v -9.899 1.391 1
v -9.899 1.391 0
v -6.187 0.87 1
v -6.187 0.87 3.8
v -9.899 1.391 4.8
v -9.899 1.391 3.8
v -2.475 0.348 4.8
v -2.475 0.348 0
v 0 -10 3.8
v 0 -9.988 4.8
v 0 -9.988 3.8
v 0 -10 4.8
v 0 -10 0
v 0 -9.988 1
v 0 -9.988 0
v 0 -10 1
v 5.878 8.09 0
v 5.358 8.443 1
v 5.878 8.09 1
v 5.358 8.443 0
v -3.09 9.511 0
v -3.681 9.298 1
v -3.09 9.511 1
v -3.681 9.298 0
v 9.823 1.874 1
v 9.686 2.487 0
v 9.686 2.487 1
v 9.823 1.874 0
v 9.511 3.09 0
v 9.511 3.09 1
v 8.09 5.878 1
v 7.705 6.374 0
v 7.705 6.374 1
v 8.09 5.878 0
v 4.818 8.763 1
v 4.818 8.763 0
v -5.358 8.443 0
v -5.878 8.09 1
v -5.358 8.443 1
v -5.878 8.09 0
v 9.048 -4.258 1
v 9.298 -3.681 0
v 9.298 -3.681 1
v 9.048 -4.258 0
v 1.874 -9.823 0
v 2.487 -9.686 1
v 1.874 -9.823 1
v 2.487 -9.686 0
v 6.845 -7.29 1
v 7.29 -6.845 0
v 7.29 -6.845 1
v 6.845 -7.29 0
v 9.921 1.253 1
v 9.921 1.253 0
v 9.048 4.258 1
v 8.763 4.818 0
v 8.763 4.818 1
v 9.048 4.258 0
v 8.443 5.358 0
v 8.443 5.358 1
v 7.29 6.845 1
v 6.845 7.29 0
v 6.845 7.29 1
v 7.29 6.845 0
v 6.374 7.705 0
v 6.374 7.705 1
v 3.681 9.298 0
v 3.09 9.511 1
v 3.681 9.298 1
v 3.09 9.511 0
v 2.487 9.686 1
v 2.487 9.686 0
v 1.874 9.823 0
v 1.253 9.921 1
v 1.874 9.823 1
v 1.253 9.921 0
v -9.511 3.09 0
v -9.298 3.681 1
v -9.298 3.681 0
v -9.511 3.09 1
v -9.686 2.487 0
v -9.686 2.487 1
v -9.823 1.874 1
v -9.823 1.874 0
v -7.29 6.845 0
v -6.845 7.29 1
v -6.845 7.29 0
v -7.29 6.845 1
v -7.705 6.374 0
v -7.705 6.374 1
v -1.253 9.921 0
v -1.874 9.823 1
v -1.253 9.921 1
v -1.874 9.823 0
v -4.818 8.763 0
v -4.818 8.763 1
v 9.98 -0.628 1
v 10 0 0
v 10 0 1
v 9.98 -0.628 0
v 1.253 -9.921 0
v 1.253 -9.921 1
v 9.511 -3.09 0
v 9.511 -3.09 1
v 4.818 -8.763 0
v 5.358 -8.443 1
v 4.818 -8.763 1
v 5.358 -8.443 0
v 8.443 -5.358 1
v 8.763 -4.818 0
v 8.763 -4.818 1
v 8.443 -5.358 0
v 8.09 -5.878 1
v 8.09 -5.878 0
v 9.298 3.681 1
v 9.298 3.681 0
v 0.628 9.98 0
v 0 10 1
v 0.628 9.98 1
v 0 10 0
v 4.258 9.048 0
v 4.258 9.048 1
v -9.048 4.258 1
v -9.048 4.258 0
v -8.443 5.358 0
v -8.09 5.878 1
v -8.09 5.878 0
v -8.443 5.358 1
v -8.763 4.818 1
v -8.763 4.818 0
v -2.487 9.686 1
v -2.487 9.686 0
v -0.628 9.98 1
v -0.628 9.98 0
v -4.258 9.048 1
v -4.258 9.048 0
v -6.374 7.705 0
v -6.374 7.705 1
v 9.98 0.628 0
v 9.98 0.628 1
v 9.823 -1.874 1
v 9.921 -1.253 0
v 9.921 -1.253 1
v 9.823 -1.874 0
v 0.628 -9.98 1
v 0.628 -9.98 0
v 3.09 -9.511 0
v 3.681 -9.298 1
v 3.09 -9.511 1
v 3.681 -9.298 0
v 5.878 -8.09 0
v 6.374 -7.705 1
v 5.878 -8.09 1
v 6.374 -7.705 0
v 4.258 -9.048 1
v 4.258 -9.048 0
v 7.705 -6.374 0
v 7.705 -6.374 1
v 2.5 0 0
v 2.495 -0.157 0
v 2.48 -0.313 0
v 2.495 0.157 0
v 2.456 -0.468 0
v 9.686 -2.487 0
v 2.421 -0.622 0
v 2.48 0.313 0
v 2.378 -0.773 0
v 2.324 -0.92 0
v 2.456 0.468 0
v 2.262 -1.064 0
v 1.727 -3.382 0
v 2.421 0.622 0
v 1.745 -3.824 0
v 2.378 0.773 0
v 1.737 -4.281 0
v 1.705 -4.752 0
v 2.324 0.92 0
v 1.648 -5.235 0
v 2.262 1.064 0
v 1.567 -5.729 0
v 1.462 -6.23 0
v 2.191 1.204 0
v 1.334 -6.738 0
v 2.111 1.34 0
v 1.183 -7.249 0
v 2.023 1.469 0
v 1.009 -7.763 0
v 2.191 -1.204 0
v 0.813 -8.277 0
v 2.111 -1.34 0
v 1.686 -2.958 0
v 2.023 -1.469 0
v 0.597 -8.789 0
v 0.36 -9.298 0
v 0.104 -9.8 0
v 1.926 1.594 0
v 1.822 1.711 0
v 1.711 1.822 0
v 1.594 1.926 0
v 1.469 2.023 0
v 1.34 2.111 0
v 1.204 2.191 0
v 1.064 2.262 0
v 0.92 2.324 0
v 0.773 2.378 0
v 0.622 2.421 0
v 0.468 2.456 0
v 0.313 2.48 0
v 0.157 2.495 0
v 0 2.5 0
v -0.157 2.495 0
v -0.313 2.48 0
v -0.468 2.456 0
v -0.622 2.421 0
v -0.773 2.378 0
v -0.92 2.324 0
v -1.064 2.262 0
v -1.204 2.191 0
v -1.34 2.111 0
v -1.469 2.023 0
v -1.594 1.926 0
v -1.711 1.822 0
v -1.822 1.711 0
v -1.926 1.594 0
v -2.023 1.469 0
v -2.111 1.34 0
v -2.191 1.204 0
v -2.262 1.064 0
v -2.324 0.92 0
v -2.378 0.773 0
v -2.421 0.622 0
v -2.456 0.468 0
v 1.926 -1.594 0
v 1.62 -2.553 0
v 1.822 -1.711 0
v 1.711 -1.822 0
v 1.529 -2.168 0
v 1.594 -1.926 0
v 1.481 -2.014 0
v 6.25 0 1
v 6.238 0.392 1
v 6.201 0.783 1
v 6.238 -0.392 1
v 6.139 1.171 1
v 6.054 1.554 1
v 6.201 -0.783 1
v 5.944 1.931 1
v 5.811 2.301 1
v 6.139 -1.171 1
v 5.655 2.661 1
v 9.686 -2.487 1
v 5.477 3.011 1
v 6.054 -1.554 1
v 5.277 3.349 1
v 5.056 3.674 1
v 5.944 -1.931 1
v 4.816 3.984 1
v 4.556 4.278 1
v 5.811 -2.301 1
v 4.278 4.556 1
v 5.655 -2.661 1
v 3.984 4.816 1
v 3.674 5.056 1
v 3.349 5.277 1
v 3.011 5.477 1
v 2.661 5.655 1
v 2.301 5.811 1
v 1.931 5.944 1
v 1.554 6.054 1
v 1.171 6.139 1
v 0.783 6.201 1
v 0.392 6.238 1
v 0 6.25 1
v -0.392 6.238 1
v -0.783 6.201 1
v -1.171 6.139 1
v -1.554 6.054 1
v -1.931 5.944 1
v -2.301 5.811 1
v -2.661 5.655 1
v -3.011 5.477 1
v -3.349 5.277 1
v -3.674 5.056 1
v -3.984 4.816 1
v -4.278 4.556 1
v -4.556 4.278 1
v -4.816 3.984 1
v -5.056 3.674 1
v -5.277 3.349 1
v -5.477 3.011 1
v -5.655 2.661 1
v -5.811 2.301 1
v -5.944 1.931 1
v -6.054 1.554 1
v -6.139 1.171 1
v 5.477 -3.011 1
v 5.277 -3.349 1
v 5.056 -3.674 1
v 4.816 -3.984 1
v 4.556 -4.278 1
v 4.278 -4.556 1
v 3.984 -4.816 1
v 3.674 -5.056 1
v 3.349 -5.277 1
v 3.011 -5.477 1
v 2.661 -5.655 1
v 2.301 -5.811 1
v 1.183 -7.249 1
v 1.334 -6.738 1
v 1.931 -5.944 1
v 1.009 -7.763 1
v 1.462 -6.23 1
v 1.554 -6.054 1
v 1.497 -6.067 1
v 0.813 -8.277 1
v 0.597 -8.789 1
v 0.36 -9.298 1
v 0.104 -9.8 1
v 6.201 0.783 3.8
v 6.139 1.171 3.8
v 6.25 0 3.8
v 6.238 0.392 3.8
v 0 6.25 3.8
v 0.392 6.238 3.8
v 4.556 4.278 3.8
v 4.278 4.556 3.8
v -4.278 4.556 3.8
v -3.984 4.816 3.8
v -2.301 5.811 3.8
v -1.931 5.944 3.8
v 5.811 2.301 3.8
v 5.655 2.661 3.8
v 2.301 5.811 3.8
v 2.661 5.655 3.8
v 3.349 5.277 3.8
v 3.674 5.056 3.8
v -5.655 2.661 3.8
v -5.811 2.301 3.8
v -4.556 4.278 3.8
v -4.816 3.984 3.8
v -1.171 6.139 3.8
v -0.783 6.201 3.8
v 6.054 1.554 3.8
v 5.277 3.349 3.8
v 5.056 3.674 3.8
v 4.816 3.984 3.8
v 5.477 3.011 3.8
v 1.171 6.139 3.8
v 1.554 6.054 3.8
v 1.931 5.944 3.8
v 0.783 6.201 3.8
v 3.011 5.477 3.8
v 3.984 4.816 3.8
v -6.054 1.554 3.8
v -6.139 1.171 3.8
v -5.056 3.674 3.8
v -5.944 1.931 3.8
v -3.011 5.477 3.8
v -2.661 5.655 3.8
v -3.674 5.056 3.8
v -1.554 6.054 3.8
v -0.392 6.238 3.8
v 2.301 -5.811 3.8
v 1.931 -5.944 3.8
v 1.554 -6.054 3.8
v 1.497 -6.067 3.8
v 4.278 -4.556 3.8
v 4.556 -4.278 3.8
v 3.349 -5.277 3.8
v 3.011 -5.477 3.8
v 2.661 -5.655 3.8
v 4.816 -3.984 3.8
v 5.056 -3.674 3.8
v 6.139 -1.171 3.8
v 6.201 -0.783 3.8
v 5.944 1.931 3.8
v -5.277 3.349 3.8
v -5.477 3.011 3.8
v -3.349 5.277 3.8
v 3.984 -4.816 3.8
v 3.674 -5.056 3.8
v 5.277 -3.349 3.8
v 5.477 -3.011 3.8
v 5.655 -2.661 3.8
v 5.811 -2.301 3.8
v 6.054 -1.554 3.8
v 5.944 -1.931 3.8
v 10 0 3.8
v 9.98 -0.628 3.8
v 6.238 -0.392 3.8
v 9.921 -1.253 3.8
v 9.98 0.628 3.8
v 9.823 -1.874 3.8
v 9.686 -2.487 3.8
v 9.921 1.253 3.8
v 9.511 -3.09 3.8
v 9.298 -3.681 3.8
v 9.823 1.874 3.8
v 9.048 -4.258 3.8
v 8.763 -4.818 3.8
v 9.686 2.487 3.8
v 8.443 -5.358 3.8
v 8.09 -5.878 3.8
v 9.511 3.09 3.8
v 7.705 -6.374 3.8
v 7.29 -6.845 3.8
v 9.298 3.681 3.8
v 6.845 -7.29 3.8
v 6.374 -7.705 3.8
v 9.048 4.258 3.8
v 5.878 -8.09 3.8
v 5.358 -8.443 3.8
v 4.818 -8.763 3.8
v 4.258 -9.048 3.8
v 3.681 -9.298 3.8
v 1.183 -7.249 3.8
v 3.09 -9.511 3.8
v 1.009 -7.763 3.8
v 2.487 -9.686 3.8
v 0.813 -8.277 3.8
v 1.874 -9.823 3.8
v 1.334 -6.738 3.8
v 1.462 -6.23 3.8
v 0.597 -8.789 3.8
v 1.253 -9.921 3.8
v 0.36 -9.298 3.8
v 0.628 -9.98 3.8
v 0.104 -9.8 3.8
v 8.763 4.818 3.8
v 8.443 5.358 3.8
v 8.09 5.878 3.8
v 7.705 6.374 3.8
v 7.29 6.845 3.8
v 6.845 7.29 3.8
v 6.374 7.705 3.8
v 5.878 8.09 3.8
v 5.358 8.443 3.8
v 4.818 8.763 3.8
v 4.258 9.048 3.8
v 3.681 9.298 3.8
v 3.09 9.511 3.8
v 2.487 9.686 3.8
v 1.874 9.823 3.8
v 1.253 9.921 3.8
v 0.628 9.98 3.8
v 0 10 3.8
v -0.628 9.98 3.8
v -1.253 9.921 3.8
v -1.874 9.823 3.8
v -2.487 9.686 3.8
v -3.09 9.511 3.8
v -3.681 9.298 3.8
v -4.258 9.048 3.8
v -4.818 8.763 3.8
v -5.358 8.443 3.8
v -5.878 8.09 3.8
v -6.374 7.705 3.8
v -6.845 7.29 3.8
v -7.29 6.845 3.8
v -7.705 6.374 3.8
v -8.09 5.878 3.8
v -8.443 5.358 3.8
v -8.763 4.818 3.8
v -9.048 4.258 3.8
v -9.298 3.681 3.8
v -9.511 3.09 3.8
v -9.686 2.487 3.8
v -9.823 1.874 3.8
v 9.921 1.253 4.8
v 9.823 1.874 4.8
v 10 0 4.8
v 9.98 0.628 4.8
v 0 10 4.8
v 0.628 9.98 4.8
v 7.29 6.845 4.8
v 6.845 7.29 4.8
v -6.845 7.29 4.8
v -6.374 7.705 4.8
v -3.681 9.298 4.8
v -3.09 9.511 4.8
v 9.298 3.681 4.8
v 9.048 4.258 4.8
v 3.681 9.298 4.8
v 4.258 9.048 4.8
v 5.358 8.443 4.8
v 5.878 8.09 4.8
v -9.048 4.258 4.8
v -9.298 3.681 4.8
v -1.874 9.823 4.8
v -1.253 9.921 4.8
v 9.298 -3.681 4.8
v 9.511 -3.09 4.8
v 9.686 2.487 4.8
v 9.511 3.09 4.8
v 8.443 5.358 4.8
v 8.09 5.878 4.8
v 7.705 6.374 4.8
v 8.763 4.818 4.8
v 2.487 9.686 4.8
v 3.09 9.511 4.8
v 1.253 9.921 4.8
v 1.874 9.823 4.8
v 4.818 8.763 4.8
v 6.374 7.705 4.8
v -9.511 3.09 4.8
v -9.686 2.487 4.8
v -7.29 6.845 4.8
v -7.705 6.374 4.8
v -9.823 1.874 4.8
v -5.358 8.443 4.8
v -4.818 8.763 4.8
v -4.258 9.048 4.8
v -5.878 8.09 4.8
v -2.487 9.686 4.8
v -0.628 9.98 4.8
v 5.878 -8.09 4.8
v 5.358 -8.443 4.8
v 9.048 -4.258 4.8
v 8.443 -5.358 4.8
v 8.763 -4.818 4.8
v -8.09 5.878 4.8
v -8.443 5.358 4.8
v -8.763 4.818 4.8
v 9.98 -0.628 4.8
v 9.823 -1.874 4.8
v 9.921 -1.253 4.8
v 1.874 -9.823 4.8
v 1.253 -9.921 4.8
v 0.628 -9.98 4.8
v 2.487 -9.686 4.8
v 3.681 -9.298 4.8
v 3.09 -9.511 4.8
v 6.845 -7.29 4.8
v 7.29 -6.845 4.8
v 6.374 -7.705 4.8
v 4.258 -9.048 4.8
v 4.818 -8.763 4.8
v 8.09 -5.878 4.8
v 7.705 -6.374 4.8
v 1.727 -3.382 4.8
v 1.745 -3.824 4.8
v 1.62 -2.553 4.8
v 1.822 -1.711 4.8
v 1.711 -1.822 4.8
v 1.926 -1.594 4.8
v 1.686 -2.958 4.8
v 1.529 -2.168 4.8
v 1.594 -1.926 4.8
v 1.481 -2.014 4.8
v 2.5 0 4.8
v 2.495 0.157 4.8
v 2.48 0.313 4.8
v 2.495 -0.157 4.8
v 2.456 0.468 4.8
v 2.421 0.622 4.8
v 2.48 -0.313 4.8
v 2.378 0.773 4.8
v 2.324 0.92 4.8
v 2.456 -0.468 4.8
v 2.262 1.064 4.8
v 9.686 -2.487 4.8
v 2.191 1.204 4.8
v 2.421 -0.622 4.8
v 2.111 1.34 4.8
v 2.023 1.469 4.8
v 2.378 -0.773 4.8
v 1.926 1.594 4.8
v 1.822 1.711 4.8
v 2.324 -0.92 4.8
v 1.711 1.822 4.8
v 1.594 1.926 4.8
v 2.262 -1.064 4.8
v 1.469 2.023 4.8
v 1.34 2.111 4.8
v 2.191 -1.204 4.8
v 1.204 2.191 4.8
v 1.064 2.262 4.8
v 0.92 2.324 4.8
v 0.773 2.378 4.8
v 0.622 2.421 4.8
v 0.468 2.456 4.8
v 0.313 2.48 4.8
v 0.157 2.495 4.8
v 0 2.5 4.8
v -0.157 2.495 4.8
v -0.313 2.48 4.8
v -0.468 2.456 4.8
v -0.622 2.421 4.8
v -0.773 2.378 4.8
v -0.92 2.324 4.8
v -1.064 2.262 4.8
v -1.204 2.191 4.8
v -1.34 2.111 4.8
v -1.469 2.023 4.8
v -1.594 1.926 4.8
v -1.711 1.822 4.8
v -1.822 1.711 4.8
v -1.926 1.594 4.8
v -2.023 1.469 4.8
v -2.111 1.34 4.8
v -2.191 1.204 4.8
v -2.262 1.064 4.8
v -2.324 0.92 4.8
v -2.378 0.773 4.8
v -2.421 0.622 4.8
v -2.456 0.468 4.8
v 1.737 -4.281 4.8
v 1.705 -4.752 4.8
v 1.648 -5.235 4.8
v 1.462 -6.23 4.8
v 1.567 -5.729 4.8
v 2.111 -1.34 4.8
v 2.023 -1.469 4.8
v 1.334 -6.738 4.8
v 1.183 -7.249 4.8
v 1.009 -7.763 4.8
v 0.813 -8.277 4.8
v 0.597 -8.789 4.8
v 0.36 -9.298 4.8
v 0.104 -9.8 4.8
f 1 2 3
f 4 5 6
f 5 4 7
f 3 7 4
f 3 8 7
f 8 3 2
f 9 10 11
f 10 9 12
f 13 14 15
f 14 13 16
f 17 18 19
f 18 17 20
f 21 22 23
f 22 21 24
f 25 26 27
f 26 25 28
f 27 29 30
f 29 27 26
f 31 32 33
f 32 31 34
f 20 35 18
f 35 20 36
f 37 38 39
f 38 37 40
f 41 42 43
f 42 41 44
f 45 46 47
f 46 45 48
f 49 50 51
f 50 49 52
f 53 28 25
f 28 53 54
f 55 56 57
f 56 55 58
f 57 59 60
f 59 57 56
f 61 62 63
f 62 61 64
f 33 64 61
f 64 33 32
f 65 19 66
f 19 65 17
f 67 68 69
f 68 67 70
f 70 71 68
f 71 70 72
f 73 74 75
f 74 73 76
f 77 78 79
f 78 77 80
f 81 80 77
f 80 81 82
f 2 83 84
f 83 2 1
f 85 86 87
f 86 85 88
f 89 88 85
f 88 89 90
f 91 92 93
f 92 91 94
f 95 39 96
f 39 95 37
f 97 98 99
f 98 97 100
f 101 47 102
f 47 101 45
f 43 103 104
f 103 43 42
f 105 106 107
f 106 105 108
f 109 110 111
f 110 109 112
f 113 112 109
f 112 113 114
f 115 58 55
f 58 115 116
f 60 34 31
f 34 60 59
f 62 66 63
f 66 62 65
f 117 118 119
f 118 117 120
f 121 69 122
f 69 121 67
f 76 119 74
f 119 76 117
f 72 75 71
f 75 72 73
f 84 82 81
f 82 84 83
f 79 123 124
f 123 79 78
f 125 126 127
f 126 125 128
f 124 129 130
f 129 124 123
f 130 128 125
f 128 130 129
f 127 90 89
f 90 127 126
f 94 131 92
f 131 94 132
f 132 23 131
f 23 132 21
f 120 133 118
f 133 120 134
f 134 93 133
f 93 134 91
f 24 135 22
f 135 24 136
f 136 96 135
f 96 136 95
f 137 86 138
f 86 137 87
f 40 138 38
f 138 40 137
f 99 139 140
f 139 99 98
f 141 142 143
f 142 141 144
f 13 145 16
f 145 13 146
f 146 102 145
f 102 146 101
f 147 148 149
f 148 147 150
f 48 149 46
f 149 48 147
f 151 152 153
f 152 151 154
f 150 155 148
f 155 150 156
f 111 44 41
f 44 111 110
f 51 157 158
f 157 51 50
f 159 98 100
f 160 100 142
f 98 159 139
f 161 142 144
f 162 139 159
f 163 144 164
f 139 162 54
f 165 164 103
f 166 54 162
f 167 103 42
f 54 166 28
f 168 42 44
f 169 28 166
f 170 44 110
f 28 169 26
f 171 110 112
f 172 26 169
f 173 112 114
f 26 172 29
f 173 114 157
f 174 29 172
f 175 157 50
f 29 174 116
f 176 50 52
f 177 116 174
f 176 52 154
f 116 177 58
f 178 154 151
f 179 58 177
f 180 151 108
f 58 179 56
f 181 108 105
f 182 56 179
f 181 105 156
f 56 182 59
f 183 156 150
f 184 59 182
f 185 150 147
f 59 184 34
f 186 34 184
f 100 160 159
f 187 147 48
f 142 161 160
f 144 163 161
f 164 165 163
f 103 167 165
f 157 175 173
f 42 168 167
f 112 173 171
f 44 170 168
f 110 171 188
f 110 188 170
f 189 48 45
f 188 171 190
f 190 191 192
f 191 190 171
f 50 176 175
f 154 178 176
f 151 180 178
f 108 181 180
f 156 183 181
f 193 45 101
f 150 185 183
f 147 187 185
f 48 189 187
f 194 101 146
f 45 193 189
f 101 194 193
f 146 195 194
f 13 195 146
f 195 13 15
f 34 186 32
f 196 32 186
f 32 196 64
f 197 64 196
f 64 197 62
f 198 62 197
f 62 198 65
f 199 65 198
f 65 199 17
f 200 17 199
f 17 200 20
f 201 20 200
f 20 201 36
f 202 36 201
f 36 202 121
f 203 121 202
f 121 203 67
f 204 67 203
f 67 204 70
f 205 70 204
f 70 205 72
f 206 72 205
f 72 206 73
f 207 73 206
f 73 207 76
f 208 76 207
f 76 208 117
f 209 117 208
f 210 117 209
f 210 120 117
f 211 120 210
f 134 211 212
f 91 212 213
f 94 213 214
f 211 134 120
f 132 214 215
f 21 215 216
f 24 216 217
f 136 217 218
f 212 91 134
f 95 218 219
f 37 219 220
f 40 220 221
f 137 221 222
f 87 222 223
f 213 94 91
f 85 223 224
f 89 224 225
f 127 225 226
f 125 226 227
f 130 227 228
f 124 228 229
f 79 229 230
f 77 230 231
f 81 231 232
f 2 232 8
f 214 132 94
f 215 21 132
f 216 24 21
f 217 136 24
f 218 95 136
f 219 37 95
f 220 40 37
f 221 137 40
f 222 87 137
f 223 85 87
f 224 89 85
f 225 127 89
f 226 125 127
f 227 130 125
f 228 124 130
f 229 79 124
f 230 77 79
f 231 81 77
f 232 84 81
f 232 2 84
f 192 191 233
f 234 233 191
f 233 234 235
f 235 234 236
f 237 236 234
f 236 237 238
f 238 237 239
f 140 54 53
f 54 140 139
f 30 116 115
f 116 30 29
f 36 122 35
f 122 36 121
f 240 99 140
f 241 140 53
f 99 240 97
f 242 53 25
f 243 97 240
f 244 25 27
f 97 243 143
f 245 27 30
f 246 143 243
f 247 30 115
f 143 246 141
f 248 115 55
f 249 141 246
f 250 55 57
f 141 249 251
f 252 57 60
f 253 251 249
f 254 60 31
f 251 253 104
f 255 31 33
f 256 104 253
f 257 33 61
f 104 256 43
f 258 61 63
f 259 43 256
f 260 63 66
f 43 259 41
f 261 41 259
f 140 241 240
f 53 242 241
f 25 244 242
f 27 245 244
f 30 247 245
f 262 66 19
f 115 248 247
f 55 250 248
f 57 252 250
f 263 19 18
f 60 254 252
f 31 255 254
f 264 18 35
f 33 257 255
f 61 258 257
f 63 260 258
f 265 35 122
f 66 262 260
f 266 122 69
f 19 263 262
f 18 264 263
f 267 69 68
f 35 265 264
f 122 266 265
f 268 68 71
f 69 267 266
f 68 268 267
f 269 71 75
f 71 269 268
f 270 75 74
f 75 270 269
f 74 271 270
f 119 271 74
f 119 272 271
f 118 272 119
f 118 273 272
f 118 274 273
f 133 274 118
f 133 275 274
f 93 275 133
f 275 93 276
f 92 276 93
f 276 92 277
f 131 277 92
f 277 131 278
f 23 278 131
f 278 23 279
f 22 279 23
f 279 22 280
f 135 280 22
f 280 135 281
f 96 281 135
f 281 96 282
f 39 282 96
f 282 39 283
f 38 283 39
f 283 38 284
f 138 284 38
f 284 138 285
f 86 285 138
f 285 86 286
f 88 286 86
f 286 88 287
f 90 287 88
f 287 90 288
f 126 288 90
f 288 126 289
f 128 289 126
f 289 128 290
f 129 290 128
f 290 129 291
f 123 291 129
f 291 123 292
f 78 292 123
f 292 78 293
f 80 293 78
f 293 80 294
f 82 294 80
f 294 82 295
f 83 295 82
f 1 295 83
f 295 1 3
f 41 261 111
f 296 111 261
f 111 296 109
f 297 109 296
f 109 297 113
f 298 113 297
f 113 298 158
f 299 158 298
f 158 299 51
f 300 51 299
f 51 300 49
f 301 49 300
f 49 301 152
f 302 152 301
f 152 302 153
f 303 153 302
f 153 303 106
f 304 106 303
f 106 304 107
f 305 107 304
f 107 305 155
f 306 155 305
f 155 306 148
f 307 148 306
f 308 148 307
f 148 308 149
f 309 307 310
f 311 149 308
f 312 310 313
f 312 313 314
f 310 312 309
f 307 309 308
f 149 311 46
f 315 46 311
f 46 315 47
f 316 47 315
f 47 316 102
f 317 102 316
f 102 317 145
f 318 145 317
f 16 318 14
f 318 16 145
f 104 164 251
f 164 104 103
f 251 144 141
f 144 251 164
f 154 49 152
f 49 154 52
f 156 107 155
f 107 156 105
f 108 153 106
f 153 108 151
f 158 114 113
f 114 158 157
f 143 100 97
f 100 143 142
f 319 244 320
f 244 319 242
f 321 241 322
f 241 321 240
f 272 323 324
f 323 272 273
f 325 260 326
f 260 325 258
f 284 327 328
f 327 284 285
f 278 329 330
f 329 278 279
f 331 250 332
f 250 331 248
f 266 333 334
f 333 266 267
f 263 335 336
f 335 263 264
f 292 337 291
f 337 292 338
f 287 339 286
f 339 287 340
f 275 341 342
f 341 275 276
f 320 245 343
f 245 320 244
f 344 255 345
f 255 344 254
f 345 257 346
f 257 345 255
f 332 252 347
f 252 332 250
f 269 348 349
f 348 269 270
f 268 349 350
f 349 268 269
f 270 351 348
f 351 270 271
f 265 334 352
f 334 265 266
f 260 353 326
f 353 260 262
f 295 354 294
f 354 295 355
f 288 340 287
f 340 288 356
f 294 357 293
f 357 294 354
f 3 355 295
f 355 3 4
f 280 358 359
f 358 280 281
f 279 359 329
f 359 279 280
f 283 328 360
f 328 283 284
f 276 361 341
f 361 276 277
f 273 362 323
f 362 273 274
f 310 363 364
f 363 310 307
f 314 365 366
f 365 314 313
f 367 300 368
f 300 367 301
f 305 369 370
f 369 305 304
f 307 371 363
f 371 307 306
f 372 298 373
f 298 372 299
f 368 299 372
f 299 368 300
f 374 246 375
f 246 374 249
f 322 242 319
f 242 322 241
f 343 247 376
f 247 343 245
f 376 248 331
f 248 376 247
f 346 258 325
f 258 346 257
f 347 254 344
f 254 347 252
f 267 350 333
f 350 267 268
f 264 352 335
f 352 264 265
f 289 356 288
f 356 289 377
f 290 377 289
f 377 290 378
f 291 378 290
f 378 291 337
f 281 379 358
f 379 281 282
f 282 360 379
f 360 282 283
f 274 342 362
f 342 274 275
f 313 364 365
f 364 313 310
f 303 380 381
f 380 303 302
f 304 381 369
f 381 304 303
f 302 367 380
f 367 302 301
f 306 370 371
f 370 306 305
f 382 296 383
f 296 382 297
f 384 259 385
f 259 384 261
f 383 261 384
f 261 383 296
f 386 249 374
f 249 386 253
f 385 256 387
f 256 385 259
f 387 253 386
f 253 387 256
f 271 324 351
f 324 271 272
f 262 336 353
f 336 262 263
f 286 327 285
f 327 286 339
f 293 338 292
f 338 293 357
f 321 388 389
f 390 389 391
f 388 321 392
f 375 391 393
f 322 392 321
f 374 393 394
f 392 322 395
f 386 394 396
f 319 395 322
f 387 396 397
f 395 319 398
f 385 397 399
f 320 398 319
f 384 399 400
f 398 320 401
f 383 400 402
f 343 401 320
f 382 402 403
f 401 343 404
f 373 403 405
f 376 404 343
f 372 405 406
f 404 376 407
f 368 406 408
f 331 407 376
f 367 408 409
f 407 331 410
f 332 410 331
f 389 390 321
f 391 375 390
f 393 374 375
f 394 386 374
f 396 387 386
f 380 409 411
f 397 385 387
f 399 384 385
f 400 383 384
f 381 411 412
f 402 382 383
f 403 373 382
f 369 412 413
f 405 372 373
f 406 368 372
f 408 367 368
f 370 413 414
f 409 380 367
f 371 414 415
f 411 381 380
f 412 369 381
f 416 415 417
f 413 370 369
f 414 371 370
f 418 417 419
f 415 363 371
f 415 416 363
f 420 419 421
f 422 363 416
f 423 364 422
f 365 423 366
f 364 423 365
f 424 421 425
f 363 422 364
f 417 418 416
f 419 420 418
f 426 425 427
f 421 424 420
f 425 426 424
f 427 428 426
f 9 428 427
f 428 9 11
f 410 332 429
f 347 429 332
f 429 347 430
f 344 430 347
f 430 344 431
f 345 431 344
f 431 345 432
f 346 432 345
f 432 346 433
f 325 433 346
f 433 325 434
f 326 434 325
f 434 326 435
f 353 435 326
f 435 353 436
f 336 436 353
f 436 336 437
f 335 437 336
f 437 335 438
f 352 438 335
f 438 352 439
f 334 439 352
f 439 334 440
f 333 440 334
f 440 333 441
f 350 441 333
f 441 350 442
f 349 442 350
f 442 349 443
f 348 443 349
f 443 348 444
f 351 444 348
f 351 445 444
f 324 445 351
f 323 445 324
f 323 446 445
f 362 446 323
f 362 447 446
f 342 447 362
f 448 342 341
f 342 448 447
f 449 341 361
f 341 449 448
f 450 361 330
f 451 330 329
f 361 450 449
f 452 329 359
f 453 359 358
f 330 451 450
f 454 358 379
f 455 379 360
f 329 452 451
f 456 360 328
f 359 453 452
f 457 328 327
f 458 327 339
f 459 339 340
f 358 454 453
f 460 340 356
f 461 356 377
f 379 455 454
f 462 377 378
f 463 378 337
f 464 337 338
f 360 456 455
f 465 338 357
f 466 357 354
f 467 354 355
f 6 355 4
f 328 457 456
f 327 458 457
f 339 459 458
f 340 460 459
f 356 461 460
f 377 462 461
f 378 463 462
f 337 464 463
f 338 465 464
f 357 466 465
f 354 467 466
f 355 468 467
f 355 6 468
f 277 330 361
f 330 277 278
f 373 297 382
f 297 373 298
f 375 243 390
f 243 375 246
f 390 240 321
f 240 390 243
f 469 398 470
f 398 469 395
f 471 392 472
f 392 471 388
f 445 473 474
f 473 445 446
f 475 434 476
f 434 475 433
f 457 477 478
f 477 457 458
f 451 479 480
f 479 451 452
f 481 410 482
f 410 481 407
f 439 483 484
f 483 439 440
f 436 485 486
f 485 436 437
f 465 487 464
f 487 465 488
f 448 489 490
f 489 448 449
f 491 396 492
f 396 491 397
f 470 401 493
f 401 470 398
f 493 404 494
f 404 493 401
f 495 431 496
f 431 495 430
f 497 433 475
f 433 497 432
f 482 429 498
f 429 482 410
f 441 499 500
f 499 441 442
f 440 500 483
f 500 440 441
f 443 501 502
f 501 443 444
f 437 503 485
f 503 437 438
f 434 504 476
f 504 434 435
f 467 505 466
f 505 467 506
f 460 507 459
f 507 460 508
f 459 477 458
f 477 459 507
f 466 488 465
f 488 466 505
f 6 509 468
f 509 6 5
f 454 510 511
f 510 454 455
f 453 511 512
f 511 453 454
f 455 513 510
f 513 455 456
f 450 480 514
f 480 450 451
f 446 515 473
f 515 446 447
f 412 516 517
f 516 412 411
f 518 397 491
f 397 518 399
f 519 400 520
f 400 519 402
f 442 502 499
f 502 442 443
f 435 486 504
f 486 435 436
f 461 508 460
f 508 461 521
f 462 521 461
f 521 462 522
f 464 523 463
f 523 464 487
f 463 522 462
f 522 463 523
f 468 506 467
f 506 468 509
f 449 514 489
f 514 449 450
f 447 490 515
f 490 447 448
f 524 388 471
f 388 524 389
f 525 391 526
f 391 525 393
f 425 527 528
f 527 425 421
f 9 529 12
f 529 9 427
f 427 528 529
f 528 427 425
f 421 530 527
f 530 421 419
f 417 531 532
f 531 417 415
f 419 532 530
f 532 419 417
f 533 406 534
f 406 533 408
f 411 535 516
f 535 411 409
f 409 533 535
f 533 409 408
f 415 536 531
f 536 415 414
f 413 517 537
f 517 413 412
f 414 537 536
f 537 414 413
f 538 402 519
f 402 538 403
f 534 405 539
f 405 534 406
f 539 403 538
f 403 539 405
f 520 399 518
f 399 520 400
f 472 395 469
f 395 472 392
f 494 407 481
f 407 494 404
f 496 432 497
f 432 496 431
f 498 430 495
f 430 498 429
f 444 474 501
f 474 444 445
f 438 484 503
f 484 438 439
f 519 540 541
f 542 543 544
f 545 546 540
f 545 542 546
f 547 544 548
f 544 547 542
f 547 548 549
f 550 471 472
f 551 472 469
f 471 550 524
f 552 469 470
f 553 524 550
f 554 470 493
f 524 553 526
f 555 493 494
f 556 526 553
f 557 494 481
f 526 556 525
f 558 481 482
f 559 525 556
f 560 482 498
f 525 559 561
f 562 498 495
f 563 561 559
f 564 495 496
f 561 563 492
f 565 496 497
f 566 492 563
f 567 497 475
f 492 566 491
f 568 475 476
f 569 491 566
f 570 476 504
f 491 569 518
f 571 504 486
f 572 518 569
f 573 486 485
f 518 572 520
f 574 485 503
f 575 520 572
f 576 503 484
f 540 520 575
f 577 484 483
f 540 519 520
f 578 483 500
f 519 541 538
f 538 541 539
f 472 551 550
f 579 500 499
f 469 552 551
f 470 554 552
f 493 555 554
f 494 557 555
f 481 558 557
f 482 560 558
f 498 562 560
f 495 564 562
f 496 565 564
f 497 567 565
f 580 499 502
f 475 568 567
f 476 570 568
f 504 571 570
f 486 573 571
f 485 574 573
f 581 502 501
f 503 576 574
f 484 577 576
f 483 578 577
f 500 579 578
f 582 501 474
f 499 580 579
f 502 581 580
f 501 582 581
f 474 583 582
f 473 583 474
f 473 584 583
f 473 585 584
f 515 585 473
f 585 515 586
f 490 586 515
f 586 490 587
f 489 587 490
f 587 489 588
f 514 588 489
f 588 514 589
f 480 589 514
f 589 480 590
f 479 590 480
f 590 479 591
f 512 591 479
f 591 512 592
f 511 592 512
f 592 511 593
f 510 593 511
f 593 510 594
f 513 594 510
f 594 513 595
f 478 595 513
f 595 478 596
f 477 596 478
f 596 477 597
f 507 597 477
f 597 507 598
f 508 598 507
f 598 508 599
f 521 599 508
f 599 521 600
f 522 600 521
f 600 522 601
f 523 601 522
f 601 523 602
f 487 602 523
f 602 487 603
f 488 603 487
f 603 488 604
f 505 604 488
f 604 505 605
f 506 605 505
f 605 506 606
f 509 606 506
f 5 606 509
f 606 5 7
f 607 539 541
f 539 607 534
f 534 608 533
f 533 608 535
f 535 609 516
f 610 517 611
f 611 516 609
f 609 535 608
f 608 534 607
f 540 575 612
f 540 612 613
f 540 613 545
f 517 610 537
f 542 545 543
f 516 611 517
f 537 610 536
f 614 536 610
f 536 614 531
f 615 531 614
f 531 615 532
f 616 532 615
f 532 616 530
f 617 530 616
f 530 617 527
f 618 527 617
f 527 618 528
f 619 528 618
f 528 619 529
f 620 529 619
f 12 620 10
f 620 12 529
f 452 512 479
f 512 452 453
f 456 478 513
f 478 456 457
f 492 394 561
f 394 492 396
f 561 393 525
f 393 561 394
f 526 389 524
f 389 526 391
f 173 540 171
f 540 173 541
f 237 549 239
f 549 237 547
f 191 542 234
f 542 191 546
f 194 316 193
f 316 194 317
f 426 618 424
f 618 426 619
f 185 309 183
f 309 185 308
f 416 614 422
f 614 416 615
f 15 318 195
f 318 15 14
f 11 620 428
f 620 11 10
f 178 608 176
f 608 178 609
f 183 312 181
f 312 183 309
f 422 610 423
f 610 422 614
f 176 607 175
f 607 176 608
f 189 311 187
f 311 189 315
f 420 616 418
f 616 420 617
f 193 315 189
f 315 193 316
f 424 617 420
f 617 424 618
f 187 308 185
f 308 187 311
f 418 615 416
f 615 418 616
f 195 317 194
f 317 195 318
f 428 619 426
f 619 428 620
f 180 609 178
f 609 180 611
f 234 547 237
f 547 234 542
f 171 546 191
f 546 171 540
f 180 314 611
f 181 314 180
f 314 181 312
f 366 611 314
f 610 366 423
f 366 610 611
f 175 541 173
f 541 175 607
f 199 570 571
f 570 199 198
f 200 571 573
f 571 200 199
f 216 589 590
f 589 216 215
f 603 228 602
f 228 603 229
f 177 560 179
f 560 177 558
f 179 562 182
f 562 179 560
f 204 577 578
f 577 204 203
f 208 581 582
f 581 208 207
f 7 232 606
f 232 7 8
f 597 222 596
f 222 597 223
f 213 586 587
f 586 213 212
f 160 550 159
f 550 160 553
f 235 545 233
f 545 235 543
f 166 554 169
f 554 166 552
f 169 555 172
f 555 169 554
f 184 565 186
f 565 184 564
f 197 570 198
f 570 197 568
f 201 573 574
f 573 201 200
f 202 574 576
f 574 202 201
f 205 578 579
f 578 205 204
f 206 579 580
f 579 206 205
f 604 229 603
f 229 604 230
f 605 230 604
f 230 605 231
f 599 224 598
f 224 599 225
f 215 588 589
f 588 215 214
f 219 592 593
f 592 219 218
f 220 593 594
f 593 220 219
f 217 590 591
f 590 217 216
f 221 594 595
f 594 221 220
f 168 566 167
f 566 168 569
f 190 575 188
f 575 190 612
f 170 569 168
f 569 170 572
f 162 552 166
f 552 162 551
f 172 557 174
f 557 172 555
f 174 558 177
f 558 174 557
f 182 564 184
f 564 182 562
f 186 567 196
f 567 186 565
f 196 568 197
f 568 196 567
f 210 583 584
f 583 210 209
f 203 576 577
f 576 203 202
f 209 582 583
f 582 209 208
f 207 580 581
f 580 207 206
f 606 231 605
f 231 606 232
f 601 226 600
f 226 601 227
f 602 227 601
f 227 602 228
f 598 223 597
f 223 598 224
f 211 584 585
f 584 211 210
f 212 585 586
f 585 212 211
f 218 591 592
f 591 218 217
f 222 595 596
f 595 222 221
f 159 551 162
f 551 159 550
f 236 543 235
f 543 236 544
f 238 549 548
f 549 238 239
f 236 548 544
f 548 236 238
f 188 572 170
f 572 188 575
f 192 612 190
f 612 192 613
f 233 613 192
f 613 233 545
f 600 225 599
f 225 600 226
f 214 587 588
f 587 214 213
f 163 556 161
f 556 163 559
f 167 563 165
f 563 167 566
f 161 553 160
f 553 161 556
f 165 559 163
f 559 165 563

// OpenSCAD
// Elevevator Support for RM F104
/* This makes a 3D model for a support for the elevator on the tail.
 * The parameters are given below in mm.
 * The construction method is:
 * 1. make a circular plate,
 * 2. put a circular insert on top of it
 * 3. put another circular plate on top of that.
 * 4. then from all that subtract:
 *    4a. a rod of correct diameter, correctly positioned,
 *    4b. 2 cubes that have been rotated to the proper angles and postioned correctly.
 * 5. the end result is produced by the call to 'support();'
 */

// all dimensions are millimeters
rodDia = 5.0;  // diameter of rod to be glued to support
foamThickness = 4.8;  // foam thickness so as to make it flush
plateThickness = 1.0;  // support plates sandwich walls
plateDia = 20.0;   // diameter of plate
insertThickness = foamThickness - 2.0*plateThickness;  // width of the inner piece
insertDia = (plateDia + rodDia)/2.0;  // diameter of inner piece
forAngle = 0.0;  // angle of forward slope
aftAngle = -8.0;  // angle of rearward slope

// do not change these!
epsilon = 5.0;  // used to ensure that there are no close misses
$fn = 100;  // curve resolution
//$fn = 30;  // curve resolution

// top hook thing stuff
hookDia = 10.0;
elipseFact = 1.8;
hookAngle = -120.0;

module  hookCutOut(di,fc,ang,ht){    
    rotate(ang){
        translate([di*fc/2.0,0,0]){
            resize([di*fc,0,0]){
                cylinder(d=di,h=ht,center=true);
            }
        }
    }
}




module outerPlate(dia, ht){
    cylinder(d=dia,h=ht);
}

module insert(d,t){
    cylinder(d=d,h=t);
}

module rod(d,ht){
    translate([0,0,0]){
        cylinder(d=d,h=ht,center=true);
    }
}

module cutter(d,h){
    rotate(aftAngle){
        translate([-(d+epsilon),-d-epsilon,-epsilon]){
            cube(d+epsilon,d+epsilon,h+epsilon);
        }
    }
    rotate(0){
        translate([-(d+epsilon),-d-epsilon,-epsilon]){
            cube(d+epsilon,d+epsilon,h+epsilon);
        }
    }
}



module hookBoxCut(hookD,hookE,hookA,plateD,foamT){
    cutter(plateD,foamT);
    difference(){
        hookCutOut(hookDia,elipseFact,hookAngle,foamT*2.0);
        translate([-(plateD+epsilon)/2.0,0,0]){
            cube([plateD+epsilon,plateD*2+epsilon,foamT*2.0+epsilon],center=true);
        }
    }
}

module support(){
    difference(){
        union(){
            outerPlate(plateDia,plateThickness);
            translate([0,0,plateThickness]){
                insert(insertDia,insertThickness);
            }
            translate([0,0,plateThickness+insertThickness]){
                outerPlate(plateDia,plateThickness);
            }
        }
        hookBoxCut(hookDia,elipseFact,hookAngle,plateDia,foamThickness*2.0);
        //cutter(plateDia,foamThickness*2.0);
        rod(rodDia,foamThickness*3.0);
    }
}
support();
